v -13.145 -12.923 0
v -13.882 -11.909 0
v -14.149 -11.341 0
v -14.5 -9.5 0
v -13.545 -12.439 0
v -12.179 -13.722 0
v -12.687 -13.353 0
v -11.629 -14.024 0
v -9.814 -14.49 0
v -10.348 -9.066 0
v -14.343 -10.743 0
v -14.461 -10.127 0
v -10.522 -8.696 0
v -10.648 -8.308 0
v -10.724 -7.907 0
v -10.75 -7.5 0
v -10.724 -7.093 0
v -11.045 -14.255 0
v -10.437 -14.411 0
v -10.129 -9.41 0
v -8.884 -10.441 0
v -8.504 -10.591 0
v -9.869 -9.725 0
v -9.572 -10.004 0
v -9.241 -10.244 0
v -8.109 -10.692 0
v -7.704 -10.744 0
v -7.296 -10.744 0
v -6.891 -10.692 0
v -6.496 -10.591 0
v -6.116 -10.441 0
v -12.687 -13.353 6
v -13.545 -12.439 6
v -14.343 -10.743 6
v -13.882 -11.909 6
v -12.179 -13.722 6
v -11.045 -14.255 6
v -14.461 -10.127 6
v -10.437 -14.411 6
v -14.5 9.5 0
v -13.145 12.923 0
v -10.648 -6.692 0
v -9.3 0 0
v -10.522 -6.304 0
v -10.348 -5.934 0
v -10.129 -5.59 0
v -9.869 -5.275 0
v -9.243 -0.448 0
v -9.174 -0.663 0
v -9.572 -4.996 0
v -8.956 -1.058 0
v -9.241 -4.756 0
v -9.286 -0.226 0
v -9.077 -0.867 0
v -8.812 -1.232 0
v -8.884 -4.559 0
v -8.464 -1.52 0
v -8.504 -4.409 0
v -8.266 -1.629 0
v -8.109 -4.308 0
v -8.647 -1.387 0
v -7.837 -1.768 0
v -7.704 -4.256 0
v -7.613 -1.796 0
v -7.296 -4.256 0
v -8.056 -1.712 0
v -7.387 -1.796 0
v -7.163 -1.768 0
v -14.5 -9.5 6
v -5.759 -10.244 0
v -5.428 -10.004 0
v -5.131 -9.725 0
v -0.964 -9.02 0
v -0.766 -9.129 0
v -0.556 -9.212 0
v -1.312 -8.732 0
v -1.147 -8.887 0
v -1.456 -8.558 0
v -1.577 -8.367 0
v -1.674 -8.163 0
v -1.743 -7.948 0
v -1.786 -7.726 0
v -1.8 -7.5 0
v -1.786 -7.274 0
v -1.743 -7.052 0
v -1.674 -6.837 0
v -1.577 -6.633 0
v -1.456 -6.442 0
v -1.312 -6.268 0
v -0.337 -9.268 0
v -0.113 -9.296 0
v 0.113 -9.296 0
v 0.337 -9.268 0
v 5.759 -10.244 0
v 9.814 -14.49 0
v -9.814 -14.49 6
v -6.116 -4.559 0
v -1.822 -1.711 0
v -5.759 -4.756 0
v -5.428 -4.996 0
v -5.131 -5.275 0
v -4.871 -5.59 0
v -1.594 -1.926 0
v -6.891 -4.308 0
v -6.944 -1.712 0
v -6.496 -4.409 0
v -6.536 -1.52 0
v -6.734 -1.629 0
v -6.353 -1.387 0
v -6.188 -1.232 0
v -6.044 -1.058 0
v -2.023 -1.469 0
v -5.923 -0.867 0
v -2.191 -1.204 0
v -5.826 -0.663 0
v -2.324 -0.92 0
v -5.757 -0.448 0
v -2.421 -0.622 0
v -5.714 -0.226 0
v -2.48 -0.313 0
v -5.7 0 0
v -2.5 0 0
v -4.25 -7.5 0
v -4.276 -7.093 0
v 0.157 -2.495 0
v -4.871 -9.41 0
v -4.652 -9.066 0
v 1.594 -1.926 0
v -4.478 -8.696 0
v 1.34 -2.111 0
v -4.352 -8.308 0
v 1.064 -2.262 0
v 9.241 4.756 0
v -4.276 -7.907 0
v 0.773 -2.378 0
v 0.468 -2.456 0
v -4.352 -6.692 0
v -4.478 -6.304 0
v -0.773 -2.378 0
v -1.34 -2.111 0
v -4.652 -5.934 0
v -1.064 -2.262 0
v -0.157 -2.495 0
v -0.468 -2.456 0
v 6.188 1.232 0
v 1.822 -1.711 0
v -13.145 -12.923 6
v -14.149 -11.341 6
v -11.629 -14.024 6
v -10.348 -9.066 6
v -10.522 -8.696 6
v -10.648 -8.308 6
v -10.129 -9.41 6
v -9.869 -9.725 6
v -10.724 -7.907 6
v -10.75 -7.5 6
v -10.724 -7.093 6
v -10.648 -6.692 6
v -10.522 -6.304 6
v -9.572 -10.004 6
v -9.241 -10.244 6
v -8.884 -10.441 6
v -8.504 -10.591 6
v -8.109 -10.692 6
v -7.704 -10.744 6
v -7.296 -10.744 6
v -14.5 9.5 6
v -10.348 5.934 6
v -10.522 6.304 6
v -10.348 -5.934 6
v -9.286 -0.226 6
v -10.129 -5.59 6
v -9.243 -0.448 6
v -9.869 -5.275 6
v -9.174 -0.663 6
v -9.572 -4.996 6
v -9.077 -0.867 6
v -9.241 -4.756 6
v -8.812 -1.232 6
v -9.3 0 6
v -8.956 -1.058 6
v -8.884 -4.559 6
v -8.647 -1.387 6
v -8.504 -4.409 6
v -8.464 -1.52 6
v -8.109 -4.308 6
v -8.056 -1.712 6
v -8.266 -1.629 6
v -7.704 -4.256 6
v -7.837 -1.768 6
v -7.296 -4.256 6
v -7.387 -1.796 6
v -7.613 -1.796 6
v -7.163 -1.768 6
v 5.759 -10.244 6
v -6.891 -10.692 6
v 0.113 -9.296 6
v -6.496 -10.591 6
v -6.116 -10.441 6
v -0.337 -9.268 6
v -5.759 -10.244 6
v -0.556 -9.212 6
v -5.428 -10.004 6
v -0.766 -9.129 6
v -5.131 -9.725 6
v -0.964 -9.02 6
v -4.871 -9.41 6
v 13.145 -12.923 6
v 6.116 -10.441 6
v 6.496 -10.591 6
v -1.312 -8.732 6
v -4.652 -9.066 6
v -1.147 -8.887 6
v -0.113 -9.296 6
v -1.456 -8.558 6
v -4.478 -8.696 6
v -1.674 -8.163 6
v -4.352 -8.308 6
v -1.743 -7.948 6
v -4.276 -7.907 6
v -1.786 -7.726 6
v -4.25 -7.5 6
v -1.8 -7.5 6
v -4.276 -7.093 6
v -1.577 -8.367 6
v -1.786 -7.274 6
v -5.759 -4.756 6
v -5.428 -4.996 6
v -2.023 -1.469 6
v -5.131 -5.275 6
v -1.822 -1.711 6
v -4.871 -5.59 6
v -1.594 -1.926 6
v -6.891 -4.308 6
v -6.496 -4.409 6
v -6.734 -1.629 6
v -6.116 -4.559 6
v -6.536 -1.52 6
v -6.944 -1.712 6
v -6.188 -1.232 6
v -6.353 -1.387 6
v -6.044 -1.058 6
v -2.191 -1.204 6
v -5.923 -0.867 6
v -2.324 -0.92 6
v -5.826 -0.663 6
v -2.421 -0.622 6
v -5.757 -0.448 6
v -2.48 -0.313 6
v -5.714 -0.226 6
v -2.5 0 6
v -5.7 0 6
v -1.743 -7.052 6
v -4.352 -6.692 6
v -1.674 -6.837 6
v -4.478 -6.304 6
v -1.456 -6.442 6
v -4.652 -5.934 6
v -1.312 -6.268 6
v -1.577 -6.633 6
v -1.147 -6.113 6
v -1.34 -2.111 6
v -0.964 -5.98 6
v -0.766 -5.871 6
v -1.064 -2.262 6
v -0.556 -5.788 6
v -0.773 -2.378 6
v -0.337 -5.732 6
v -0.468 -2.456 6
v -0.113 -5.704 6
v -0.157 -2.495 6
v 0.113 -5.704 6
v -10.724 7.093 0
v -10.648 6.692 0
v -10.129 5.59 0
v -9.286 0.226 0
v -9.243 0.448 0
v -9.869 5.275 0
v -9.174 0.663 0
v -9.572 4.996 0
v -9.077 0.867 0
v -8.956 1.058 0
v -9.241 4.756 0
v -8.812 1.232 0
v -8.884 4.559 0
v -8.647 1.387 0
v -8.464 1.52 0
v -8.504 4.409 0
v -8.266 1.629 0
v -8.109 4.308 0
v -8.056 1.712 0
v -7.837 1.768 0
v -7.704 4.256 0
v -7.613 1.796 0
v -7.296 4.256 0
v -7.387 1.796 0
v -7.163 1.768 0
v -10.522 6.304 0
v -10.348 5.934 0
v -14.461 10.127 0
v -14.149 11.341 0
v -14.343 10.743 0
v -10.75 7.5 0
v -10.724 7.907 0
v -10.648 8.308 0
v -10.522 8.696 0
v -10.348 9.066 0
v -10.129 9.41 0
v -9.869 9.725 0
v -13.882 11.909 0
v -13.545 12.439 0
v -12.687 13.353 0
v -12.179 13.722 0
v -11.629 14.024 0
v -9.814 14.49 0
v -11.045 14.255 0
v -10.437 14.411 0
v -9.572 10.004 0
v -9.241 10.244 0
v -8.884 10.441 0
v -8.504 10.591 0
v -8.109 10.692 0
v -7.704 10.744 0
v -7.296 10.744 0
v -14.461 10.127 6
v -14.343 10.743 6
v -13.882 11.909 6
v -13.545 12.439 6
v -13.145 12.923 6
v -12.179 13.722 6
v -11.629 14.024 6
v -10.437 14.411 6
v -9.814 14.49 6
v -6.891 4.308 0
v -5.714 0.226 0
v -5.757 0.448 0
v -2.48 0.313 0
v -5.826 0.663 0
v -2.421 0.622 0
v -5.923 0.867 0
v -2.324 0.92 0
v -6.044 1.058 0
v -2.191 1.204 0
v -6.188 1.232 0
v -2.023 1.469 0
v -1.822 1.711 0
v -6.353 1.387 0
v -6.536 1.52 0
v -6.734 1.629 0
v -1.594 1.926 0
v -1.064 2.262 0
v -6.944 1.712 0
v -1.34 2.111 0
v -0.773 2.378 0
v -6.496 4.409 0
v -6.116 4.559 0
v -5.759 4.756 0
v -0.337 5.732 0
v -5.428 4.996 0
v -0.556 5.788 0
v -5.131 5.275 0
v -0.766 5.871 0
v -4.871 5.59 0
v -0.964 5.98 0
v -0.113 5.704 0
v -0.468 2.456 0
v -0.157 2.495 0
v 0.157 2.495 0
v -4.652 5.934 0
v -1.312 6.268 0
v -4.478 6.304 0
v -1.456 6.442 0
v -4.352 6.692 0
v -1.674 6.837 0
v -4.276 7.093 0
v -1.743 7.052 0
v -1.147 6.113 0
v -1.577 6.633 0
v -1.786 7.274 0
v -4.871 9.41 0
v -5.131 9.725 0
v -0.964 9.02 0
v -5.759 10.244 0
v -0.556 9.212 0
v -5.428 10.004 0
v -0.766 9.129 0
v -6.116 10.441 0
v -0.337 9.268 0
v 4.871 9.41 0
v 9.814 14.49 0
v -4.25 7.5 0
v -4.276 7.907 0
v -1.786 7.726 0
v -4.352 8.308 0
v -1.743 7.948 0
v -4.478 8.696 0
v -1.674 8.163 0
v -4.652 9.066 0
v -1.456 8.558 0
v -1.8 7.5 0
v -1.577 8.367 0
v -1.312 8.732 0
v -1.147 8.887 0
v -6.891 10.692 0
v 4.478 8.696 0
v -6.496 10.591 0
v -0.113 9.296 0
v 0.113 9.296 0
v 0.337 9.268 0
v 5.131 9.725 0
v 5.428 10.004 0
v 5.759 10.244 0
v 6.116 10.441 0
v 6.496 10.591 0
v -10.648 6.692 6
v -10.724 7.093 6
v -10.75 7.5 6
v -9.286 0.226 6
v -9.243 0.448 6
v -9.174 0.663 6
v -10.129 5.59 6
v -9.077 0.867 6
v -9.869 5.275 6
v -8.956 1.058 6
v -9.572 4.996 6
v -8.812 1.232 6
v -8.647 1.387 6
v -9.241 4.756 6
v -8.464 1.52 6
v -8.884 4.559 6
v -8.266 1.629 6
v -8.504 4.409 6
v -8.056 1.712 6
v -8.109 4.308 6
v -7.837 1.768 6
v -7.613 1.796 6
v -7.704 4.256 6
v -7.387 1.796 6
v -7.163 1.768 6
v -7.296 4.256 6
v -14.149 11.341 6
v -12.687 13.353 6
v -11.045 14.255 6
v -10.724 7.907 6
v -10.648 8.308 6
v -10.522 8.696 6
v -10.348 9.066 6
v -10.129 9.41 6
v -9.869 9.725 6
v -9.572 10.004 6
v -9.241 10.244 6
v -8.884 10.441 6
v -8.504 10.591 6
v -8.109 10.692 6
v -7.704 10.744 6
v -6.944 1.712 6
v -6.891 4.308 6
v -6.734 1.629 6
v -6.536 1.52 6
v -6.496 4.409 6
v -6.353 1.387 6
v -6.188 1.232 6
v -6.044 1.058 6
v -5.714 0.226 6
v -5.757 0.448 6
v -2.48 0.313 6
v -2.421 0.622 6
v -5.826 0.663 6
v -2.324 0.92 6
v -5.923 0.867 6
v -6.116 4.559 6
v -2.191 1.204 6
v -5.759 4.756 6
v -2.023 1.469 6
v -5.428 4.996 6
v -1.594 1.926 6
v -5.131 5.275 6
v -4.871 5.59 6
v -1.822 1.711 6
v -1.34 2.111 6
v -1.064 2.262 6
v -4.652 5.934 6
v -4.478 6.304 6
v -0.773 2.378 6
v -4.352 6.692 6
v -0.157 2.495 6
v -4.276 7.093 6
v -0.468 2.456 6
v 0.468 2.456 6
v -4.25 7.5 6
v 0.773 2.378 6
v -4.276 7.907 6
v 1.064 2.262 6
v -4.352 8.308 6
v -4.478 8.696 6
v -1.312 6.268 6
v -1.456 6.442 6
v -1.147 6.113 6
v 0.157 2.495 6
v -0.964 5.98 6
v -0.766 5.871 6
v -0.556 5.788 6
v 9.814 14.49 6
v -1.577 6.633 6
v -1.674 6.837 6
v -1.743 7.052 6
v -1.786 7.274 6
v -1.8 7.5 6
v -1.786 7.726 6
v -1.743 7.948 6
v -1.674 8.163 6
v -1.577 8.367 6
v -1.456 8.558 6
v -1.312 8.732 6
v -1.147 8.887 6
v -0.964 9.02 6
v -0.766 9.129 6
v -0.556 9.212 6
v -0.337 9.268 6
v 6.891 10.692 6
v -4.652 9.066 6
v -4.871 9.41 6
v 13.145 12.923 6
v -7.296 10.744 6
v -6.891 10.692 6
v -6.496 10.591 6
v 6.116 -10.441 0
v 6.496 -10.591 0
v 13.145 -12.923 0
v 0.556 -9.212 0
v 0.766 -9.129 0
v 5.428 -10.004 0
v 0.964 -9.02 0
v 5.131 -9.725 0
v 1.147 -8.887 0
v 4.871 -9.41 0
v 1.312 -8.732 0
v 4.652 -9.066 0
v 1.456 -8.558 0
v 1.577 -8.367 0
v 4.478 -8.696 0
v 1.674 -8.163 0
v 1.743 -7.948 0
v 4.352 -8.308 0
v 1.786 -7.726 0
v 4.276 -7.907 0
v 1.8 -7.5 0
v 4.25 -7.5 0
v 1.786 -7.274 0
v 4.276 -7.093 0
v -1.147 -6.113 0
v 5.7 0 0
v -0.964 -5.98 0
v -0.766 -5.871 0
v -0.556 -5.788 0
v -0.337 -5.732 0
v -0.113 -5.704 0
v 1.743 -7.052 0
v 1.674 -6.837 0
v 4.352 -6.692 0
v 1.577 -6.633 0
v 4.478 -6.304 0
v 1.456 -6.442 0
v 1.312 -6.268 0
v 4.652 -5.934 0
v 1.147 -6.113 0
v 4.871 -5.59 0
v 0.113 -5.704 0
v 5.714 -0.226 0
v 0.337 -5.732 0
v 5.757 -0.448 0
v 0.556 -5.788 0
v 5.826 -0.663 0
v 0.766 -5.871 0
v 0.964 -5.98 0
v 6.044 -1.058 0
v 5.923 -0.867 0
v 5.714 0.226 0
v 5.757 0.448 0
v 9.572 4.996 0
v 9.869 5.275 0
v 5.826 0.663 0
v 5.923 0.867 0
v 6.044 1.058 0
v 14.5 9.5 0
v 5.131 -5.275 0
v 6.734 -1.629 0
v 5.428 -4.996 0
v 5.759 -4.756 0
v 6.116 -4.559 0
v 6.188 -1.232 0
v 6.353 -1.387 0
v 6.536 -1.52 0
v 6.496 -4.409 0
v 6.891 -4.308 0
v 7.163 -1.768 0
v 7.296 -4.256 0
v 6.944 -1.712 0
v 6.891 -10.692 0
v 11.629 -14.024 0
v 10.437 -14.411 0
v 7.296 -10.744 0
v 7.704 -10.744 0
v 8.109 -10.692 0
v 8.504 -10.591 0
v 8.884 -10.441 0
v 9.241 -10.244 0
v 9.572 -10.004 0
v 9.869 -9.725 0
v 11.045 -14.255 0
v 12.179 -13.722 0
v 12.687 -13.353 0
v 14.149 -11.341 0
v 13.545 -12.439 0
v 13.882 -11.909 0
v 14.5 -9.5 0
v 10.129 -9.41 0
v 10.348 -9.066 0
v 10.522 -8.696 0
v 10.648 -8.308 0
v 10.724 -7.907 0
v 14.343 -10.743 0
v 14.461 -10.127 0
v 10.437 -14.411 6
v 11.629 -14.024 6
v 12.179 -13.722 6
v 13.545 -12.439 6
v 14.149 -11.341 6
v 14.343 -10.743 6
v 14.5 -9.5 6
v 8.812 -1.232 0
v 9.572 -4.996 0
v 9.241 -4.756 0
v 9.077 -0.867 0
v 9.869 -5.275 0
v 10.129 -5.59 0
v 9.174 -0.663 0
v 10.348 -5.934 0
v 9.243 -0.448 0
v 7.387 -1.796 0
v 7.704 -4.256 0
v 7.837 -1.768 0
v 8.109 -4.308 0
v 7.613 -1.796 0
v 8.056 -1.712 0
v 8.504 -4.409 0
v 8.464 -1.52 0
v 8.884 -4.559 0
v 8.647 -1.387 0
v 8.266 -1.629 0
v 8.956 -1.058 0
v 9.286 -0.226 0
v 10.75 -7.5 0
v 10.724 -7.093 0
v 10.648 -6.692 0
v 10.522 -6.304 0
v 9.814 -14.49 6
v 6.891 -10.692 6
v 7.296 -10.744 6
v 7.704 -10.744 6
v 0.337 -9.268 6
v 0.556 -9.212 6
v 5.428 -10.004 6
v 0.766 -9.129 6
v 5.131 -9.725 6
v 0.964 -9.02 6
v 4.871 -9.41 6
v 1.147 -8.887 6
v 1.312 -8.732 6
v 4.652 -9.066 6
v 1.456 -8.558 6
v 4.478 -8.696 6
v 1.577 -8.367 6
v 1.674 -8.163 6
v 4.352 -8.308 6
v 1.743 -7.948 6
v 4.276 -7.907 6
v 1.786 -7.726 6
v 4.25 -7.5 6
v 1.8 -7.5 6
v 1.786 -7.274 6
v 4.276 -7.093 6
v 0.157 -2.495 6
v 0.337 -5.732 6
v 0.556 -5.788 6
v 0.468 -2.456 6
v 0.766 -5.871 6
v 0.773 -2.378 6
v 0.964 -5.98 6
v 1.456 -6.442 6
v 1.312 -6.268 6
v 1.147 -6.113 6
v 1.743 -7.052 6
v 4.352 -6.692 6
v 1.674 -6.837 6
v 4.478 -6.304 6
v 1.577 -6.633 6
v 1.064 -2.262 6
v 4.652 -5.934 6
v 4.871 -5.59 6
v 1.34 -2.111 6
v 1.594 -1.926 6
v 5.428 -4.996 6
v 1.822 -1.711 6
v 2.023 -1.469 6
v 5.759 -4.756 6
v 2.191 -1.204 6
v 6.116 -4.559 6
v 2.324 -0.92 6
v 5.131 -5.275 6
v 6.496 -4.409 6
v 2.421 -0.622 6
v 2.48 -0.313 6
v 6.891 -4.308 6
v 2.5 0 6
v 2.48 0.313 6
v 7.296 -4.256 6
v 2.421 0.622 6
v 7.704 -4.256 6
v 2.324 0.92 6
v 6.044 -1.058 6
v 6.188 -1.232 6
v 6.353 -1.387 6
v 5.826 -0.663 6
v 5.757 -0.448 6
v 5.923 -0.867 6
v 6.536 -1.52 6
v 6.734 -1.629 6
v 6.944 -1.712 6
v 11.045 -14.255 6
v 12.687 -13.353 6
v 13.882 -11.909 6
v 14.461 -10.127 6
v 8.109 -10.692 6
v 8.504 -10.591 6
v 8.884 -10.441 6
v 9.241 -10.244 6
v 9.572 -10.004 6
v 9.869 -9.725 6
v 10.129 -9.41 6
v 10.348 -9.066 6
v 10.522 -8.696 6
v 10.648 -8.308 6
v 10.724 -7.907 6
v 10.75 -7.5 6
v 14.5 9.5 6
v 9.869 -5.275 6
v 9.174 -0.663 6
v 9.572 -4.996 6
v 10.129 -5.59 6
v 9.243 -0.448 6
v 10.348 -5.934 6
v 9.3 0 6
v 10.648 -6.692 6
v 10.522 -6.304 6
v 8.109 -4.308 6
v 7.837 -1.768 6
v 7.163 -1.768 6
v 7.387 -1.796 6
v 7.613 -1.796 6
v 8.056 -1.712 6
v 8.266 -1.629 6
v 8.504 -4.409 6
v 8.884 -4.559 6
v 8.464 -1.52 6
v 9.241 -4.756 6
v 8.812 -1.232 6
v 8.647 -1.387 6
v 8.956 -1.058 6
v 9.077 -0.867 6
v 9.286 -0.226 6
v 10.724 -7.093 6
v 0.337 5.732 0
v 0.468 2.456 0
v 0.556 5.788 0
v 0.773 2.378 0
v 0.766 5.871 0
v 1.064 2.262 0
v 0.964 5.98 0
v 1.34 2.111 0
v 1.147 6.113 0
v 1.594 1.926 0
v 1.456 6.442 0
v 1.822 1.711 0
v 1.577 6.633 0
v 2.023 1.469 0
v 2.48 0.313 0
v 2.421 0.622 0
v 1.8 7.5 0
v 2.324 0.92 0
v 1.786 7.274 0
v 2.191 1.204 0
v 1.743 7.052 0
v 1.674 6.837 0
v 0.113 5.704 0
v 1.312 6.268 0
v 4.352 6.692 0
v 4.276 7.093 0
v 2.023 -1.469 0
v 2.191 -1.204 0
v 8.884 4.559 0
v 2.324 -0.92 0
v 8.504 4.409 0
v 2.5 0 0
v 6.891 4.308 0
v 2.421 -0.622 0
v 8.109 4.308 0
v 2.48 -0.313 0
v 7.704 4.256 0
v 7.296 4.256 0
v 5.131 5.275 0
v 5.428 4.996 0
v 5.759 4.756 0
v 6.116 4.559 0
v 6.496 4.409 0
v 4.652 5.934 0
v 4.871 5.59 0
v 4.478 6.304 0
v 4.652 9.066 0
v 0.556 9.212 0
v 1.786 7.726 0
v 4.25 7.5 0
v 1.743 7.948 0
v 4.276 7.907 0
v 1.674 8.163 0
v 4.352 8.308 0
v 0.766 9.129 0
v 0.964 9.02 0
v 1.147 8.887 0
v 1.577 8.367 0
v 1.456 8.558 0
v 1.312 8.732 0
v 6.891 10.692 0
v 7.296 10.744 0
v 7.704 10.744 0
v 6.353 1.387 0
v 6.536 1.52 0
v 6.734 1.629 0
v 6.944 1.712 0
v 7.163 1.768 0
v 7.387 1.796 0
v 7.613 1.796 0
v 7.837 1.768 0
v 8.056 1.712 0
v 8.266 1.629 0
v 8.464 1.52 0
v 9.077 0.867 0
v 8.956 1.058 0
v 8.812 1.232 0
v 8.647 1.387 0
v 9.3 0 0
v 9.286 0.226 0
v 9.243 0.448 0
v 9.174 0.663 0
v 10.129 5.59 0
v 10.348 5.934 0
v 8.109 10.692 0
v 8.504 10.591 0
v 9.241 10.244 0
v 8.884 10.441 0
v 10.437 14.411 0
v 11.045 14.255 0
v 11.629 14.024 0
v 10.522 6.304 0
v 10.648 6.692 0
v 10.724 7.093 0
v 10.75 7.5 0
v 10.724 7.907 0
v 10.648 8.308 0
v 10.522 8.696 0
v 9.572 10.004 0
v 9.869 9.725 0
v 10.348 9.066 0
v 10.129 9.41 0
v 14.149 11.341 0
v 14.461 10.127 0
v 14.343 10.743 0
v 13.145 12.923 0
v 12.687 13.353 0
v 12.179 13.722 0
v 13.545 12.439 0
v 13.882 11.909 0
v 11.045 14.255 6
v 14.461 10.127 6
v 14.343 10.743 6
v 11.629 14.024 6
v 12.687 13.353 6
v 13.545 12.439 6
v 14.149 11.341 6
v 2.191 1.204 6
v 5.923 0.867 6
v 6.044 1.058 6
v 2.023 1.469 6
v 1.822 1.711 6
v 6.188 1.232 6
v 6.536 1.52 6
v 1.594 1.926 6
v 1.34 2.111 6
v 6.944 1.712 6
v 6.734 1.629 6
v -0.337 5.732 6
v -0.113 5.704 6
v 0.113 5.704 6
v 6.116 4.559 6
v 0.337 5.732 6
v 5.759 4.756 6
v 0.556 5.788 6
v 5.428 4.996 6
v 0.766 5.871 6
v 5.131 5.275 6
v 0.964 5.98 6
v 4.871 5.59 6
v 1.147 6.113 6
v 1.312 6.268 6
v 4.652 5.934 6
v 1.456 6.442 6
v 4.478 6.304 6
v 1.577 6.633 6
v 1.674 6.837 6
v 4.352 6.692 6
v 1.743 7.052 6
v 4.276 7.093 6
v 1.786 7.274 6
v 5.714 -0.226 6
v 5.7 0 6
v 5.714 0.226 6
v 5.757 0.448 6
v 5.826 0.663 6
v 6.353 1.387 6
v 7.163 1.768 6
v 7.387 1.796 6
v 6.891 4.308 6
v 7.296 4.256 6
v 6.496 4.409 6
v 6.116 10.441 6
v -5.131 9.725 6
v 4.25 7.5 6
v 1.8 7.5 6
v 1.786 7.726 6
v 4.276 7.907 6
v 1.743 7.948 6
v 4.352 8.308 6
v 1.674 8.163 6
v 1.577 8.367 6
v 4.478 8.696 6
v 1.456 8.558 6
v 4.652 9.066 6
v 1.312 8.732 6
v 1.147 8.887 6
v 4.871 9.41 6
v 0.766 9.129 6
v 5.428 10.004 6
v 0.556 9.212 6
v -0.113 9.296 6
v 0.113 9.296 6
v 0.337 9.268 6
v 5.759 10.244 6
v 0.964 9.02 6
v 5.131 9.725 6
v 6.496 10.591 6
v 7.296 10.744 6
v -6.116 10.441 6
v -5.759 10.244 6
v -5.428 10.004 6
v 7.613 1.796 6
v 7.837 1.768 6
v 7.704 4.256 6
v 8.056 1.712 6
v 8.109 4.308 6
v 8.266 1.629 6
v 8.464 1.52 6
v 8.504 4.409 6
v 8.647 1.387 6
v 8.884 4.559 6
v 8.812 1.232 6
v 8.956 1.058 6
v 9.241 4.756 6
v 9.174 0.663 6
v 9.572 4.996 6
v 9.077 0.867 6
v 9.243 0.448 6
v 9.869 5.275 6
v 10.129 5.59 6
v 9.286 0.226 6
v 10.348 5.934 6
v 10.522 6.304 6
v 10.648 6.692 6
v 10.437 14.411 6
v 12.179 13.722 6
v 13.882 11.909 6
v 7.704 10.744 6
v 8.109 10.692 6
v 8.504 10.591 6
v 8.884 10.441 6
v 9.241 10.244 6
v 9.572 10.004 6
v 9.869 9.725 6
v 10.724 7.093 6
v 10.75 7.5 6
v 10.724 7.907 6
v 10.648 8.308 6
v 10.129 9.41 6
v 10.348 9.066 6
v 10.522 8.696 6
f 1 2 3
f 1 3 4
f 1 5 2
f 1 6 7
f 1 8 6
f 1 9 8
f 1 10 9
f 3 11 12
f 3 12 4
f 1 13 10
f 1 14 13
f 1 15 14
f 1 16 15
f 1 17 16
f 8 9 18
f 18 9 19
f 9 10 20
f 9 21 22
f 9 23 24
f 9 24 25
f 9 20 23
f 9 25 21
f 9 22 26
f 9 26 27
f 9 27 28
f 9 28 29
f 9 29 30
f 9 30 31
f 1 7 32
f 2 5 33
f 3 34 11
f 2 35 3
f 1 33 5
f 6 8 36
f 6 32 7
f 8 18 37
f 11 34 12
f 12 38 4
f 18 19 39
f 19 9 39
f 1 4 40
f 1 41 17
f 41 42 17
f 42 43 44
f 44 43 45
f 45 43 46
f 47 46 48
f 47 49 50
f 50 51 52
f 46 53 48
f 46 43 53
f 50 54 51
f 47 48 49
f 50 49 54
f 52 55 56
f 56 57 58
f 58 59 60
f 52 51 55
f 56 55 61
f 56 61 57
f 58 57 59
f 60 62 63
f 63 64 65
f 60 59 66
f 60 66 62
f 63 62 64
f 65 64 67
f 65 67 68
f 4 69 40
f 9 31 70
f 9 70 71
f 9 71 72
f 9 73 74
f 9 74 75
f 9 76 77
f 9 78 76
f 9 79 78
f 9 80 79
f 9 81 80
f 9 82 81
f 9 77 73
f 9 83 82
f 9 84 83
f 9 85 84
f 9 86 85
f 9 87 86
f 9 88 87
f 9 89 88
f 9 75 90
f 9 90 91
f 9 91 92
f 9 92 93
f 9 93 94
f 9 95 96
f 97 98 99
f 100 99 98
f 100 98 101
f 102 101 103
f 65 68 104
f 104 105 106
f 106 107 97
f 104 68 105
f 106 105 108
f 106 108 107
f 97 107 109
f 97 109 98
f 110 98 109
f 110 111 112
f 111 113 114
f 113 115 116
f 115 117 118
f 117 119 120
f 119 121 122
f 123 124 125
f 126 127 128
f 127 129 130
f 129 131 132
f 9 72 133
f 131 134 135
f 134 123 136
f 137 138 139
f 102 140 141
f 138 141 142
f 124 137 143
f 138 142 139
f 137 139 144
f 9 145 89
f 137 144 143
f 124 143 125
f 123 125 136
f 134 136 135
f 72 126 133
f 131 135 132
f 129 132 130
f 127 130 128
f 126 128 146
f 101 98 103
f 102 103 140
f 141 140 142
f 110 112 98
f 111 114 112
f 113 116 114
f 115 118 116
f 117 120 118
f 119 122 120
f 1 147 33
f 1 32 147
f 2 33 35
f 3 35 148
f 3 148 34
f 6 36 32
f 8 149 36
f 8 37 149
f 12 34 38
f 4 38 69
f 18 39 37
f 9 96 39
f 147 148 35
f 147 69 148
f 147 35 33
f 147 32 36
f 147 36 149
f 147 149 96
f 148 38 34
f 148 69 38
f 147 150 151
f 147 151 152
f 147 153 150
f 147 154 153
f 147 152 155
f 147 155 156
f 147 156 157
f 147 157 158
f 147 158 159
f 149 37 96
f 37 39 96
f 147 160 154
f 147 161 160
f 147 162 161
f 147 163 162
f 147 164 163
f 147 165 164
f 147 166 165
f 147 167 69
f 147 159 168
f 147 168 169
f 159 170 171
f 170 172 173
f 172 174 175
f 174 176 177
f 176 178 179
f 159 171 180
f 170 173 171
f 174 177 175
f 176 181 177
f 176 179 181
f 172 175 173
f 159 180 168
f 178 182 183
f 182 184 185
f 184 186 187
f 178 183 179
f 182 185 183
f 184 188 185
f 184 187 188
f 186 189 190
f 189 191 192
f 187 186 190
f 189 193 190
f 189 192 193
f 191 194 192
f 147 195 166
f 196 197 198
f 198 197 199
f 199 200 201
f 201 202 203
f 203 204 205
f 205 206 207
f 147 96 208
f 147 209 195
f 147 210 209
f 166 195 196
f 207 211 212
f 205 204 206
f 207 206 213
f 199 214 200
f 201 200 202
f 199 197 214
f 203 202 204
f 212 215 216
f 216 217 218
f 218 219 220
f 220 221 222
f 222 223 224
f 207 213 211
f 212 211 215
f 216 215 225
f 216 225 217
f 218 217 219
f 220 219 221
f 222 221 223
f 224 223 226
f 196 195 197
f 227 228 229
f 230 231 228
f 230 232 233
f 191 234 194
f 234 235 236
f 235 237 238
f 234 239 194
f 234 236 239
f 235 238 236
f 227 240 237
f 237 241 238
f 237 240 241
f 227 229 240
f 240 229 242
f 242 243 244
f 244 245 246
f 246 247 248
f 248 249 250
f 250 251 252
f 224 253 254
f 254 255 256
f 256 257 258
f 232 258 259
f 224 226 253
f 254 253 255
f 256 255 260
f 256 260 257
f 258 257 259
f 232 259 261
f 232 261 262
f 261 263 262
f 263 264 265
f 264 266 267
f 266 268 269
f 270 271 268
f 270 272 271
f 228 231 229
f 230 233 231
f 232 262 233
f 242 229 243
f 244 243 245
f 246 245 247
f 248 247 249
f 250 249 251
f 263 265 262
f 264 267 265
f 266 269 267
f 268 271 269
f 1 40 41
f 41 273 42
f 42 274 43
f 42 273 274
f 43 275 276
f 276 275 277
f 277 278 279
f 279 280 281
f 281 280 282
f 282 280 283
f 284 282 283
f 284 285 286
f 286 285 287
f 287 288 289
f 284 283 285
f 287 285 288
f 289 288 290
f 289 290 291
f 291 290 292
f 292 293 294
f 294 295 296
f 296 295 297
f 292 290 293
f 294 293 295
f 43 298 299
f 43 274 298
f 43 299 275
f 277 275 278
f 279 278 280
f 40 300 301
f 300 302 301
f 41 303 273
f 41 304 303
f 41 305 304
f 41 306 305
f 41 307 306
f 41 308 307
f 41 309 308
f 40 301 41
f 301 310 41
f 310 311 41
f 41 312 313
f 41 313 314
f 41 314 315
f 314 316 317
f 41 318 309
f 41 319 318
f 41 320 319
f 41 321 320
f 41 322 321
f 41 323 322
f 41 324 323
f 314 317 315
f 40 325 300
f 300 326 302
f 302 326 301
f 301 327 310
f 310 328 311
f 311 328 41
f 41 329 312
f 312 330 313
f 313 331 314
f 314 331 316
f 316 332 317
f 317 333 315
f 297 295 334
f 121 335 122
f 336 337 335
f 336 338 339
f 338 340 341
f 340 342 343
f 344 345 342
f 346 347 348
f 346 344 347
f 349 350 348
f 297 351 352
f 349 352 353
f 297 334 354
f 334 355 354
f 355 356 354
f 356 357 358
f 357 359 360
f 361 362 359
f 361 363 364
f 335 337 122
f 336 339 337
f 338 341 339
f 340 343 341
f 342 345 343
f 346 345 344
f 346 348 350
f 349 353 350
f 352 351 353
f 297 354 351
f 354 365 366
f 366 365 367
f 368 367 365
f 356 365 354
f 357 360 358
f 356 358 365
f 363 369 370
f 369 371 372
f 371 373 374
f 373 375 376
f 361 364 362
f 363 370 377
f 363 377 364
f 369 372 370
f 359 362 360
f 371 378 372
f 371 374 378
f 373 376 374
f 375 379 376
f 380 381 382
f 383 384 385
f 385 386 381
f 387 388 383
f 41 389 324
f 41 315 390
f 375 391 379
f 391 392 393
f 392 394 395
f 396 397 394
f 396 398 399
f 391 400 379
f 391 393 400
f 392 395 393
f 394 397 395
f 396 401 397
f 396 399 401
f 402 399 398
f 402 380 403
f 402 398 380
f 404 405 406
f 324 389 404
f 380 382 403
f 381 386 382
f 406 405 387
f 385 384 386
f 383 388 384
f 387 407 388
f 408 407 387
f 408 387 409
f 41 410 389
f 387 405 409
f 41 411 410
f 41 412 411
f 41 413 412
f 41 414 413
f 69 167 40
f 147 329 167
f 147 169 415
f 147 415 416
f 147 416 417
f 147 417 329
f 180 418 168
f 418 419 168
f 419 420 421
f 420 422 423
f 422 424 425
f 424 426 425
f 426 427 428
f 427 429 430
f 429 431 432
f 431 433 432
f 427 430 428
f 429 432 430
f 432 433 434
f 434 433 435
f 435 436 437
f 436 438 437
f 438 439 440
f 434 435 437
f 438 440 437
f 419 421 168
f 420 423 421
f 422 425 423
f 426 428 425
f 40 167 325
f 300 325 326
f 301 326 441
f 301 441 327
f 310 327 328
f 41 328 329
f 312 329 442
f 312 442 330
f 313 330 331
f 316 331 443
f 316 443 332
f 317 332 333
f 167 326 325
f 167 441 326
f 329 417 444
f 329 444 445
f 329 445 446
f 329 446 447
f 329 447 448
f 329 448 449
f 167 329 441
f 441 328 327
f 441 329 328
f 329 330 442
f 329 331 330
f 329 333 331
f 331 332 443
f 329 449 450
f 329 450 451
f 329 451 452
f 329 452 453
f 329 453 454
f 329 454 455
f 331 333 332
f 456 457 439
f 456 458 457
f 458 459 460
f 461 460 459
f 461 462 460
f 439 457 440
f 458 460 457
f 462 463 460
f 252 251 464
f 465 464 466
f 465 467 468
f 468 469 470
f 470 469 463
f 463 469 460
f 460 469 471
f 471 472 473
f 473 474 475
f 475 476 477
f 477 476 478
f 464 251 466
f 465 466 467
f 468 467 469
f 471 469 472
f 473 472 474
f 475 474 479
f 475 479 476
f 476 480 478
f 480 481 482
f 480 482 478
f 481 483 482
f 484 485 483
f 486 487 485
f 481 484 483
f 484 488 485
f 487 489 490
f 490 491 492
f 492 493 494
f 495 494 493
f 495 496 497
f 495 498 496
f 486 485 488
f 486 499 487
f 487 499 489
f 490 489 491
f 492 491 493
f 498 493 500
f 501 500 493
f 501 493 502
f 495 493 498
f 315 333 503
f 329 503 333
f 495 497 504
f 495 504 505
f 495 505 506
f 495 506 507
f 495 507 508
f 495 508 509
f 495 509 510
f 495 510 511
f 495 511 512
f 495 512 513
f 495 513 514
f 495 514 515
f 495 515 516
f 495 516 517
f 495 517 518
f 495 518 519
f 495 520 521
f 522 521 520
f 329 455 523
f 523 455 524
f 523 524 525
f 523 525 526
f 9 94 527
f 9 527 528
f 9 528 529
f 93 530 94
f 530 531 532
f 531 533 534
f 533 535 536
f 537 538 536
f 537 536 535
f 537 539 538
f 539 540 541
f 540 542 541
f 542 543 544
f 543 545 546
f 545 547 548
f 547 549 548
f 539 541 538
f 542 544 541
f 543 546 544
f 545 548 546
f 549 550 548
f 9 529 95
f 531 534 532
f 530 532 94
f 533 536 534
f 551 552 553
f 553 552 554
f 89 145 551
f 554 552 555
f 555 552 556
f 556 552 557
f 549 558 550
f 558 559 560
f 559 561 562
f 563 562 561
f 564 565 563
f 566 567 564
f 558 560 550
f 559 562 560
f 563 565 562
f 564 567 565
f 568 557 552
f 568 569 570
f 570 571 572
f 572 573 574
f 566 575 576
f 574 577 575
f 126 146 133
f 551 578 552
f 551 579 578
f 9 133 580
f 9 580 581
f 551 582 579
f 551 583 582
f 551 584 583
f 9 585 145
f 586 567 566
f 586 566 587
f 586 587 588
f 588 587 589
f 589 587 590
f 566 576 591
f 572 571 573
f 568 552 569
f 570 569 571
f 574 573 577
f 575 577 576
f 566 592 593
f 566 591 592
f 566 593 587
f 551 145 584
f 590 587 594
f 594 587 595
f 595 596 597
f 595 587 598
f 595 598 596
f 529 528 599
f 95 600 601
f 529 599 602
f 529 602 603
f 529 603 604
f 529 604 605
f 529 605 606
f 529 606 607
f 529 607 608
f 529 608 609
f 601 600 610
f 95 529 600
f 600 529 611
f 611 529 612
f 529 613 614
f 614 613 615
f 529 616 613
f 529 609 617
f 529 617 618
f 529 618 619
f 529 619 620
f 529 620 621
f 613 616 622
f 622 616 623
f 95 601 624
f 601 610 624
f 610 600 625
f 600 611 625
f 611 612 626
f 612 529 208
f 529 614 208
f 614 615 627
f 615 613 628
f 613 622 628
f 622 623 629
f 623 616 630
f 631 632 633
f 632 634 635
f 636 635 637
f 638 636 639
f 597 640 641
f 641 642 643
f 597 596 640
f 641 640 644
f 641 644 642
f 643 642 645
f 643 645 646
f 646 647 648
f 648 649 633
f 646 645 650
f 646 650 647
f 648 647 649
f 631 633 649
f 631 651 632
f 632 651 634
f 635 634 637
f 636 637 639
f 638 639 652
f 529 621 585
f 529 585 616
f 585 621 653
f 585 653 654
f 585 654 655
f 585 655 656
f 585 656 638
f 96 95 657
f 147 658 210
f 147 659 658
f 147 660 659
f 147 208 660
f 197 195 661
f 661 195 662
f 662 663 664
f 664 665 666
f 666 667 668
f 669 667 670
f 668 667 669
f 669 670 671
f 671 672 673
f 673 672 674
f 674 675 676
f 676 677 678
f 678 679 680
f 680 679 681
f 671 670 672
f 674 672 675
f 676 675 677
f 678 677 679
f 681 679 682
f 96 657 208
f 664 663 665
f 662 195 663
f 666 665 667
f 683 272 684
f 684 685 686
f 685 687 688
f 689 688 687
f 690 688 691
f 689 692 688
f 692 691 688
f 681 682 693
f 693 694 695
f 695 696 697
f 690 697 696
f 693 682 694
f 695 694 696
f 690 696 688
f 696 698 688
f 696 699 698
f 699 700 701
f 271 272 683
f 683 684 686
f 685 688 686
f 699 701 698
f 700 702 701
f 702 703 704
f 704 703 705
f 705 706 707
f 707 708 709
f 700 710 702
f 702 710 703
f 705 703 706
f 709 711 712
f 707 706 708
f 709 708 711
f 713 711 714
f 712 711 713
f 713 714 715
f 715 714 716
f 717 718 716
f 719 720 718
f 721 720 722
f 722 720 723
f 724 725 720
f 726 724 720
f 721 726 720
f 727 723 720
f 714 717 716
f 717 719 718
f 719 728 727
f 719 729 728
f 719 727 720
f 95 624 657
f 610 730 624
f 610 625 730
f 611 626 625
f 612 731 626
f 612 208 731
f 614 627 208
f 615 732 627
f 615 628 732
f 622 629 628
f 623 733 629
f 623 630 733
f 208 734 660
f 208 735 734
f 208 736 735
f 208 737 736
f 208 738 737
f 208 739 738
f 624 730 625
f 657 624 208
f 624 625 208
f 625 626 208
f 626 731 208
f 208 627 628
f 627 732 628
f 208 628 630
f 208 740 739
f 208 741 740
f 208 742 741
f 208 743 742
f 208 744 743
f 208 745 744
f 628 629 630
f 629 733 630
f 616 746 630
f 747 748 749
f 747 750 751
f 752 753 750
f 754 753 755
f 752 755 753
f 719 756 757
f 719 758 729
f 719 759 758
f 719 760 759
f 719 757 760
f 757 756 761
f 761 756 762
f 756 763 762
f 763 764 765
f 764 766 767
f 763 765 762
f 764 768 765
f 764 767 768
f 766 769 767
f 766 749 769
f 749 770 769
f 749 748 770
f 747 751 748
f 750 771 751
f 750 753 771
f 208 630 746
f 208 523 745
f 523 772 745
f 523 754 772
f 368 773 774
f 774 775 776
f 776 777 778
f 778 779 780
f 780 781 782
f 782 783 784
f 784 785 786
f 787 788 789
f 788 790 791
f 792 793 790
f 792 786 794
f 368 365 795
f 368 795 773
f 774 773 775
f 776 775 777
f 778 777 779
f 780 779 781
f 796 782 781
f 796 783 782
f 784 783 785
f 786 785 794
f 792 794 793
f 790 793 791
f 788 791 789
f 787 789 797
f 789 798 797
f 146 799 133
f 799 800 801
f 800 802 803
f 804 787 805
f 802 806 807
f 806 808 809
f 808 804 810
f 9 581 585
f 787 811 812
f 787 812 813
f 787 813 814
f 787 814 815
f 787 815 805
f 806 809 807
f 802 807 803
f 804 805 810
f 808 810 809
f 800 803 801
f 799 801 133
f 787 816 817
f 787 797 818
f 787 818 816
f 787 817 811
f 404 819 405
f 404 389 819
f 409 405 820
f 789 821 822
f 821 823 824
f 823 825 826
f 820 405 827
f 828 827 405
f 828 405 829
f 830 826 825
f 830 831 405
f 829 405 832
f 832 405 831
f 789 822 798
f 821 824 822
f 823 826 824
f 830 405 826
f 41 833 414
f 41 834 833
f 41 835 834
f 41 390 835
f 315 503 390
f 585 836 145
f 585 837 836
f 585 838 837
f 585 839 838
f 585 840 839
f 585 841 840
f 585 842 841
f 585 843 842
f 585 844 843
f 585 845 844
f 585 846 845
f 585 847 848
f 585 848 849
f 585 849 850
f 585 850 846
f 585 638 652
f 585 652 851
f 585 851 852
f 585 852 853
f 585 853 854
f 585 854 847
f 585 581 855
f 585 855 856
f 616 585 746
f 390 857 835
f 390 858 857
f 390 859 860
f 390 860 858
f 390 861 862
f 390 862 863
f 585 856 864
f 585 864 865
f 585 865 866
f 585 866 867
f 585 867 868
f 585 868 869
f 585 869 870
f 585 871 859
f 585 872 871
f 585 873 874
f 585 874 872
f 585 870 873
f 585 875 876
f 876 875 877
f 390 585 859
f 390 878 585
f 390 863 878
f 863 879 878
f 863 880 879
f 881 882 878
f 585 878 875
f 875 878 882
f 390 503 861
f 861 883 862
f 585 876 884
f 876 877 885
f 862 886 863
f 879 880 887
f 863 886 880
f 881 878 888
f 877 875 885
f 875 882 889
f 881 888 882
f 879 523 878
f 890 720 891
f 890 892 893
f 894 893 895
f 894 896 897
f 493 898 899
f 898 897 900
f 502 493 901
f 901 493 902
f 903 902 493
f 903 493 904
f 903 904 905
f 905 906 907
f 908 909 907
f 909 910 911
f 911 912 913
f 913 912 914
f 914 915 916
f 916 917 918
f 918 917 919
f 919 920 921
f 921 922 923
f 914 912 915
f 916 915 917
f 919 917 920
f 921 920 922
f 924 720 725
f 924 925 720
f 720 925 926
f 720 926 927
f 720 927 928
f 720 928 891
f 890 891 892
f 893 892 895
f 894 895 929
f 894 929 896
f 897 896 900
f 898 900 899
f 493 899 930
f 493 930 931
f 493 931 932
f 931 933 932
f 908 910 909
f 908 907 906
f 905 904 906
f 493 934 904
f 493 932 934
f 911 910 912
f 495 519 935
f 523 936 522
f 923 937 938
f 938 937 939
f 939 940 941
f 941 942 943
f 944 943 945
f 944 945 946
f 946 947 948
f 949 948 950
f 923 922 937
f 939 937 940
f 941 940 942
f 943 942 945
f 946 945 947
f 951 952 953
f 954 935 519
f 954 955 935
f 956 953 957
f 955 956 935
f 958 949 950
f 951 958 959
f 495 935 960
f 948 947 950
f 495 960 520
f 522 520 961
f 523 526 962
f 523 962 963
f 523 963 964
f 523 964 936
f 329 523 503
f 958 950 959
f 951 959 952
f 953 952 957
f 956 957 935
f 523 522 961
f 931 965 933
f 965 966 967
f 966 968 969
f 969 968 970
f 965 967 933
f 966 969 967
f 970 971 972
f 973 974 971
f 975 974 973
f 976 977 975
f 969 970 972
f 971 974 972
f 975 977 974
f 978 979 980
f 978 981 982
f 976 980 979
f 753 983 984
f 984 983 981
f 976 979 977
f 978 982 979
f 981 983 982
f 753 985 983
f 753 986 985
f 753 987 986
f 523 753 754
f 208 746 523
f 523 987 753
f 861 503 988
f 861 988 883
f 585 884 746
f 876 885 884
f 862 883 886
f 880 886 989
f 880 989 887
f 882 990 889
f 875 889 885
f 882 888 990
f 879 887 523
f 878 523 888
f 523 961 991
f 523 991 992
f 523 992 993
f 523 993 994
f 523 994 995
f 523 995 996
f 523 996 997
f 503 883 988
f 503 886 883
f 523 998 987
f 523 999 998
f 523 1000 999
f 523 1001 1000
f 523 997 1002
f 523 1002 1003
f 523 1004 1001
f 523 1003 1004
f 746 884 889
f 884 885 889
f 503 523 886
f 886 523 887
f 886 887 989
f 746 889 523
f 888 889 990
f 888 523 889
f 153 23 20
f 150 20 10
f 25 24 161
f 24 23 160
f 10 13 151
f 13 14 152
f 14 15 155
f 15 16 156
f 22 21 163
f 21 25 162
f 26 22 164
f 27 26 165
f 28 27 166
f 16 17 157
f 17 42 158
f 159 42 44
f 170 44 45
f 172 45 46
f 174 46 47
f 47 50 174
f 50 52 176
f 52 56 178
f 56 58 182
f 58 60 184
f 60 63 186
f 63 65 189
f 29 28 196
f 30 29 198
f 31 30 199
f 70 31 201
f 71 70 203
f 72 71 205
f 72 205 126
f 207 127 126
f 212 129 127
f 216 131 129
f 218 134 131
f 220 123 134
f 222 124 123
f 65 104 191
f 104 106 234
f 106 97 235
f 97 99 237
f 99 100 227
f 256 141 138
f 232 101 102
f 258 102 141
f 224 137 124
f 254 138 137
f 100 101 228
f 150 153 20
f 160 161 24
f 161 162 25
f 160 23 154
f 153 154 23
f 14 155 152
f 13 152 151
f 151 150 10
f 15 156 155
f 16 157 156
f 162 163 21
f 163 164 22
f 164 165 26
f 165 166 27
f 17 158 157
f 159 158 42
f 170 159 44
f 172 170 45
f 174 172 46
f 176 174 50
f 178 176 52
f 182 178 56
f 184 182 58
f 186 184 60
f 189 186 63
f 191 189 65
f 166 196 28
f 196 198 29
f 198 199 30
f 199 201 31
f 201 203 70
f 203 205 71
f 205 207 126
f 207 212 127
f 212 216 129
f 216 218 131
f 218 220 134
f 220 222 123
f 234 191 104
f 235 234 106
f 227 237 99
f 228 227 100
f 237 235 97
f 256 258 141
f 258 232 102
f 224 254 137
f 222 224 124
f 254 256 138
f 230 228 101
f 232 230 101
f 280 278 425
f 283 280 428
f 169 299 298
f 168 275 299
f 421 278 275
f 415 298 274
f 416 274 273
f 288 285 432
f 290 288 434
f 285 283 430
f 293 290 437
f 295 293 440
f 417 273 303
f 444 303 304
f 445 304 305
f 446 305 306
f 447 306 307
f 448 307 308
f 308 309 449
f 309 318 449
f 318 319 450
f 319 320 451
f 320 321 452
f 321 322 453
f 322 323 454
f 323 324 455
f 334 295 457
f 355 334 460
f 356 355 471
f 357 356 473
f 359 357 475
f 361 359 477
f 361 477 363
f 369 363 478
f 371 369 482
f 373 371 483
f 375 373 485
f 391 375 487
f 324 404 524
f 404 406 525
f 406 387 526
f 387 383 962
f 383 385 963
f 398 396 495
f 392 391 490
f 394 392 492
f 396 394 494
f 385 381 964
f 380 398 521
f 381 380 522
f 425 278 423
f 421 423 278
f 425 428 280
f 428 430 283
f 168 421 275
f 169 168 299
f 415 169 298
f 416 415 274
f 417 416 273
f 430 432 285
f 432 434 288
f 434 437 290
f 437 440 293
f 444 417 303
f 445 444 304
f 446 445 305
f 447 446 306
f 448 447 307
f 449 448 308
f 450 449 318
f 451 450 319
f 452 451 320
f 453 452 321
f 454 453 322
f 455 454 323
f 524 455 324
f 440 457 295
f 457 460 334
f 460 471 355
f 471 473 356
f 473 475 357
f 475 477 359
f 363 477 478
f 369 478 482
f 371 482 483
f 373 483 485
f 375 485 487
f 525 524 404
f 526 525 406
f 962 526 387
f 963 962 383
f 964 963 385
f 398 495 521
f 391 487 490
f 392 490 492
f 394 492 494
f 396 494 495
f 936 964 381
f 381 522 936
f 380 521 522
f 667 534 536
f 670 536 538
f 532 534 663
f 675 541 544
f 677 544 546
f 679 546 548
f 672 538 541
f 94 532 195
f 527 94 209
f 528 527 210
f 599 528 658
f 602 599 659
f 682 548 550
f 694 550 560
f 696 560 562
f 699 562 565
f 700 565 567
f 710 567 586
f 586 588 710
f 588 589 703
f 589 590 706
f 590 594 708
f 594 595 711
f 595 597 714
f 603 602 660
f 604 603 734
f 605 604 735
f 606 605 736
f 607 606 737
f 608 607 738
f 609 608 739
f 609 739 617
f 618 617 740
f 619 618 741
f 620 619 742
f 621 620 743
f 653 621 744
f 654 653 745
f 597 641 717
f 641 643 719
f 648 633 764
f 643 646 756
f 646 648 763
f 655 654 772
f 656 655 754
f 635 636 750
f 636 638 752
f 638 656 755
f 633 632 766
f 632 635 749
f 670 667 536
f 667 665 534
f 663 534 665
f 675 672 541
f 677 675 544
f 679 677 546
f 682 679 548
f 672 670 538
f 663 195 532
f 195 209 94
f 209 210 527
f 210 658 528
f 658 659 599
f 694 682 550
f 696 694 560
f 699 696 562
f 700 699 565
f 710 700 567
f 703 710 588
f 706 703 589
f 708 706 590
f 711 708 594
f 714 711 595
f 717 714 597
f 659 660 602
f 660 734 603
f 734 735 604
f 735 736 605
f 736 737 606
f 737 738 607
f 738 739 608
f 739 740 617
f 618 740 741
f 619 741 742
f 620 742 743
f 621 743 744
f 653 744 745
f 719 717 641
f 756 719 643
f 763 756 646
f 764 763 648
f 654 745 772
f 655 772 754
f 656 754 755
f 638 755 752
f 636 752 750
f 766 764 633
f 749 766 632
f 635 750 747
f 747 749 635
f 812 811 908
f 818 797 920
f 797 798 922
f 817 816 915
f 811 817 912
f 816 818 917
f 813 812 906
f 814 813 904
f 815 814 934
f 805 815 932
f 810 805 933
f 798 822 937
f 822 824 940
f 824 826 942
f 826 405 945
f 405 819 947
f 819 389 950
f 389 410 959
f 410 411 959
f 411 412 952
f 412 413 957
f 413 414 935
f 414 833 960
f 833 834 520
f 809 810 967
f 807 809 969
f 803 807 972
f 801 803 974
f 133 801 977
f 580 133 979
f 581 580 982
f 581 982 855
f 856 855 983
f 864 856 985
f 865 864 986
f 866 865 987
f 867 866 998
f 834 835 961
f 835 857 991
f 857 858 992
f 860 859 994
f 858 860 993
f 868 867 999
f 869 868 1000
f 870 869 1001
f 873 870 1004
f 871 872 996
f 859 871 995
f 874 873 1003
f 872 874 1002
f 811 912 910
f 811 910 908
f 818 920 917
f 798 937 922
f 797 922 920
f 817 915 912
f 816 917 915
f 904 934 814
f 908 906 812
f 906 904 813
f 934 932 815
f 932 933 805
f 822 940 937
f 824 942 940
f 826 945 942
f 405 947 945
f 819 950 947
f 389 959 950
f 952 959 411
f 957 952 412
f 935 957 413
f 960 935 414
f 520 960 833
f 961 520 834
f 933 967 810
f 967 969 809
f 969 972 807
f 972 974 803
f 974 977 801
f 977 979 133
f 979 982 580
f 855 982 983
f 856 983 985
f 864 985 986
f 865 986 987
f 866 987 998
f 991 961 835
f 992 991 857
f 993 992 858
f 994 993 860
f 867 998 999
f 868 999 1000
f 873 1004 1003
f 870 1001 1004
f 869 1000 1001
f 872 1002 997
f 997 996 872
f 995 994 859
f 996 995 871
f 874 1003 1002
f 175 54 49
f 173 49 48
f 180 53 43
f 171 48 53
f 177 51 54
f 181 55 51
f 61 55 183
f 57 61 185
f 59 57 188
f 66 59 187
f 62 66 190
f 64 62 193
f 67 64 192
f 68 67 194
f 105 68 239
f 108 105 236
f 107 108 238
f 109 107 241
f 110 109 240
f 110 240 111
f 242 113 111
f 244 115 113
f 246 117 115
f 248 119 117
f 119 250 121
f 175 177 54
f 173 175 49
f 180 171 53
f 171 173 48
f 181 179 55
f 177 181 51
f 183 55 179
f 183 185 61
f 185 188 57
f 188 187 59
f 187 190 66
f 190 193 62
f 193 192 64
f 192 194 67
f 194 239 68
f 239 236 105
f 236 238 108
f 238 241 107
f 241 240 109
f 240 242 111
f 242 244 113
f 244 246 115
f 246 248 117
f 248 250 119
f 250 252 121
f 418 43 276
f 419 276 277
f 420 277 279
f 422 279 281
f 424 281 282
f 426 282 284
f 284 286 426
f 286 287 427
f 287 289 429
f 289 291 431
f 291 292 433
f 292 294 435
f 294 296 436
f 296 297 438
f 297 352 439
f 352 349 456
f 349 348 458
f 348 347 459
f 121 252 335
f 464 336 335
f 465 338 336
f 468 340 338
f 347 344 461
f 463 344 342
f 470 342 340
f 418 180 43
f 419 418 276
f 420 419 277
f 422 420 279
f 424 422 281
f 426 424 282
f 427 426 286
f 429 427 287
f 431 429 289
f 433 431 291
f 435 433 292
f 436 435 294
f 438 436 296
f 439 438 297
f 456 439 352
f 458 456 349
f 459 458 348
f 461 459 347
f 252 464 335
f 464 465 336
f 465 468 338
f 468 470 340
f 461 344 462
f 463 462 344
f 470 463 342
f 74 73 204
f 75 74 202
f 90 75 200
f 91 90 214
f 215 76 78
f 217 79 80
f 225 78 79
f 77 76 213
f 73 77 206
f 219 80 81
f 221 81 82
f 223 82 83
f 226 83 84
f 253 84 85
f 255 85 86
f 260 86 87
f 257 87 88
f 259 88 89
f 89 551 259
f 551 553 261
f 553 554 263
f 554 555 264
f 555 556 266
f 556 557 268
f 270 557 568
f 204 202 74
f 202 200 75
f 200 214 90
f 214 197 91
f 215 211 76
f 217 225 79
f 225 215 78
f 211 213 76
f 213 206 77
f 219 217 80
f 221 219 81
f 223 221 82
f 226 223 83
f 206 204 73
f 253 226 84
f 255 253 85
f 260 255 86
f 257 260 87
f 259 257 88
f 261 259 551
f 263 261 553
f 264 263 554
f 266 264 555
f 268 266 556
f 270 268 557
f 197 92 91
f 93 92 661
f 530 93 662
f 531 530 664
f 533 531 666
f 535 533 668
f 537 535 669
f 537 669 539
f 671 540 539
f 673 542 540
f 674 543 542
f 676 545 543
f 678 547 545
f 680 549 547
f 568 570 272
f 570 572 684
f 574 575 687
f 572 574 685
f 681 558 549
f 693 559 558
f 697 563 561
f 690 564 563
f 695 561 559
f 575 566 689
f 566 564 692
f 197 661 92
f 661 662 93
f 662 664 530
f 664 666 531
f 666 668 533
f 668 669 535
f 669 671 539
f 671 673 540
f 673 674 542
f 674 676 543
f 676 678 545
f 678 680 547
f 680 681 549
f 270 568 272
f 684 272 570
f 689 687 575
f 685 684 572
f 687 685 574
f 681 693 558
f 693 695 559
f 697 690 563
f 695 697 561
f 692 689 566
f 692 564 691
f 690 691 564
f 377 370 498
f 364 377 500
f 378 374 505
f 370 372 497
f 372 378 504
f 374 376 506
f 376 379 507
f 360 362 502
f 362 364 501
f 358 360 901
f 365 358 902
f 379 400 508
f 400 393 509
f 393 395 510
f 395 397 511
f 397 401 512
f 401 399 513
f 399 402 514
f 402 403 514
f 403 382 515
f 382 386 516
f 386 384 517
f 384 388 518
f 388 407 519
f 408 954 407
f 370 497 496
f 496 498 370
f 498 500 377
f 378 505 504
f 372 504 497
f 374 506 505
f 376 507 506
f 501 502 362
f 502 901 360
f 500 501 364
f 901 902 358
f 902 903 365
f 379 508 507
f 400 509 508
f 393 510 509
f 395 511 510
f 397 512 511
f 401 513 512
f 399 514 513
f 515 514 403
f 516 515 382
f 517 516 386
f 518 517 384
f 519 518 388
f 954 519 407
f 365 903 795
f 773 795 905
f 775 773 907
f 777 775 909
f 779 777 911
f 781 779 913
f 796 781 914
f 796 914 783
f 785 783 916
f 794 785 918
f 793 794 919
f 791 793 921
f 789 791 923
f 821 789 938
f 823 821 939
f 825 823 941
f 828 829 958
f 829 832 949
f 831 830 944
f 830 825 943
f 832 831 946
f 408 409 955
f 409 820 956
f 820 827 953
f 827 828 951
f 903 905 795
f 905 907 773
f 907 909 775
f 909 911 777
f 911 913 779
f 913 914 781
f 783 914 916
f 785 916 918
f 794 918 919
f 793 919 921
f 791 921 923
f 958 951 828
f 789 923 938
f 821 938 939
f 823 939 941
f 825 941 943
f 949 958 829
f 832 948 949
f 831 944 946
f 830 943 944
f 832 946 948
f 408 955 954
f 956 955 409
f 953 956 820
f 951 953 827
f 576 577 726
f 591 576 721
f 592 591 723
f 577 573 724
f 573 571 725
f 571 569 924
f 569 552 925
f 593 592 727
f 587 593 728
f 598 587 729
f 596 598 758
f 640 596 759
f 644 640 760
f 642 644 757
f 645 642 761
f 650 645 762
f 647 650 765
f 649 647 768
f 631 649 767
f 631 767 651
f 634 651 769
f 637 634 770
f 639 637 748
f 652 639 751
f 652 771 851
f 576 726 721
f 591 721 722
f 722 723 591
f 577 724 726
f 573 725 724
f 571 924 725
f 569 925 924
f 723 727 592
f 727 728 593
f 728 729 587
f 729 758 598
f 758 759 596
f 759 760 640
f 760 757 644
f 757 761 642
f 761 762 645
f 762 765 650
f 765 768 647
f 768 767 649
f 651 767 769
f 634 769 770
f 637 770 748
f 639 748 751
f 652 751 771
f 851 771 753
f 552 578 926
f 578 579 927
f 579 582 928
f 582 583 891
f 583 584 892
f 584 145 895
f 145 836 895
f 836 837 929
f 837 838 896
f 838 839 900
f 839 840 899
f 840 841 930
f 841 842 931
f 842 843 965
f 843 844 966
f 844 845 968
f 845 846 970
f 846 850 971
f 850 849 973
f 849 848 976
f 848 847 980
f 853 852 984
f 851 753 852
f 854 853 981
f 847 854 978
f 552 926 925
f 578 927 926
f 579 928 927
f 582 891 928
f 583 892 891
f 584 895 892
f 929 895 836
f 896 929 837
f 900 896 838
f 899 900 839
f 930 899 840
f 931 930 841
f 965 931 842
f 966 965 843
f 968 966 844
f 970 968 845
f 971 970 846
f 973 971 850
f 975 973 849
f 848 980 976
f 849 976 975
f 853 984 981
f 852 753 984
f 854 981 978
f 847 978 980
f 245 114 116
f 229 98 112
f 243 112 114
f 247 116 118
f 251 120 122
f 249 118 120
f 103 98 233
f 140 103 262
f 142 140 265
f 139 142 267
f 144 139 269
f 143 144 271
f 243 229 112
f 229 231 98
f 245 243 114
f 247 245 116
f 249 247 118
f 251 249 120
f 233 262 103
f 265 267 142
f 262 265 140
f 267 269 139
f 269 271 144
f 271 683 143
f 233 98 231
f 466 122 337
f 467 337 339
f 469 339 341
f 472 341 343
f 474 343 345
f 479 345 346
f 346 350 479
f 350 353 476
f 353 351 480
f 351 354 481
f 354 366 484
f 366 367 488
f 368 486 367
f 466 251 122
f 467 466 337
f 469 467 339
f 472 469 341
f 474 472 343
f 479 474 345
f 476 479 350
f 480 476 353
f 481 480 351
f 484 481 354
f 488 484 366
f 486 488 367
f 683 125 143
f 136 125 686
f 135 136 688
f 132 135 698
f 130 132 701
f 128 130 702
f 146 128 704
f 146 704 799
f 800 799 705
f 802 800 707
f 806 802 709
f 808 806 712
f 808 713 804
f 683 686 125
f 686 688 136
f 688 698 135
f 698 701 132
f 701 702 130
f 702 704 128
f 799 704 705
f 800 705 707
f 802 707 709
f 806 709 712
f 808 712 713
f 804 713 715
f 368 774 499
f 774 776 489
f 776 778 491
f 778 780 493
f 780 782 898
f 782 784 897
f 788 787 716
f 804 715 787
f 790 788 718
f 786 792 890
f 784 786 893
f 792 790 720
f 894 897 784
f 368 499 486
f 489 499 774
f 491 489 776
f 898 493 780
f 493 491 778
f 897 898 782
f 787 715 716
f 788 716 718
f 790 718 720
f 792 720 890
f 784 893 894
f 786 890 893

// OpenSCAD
$fn = 50;

difference() {
	union() {
		hull() {
			translate(v = [-9.5, 9.5, 0]) {
				cylinder(h = 6, r = 5);
			}
			translate(v = [9.5, 9.5, 0]) {
				cylinder(h = 6, r = 5);
			}
			translate(v = [-9.5, -9.5, 0]) {
				cylinder(h = 6, r = 5);
			}
			translate(v = [9.5, -9.5, 0]) {
				cylinder(h = 6, r = 5);
			}
		}
	}
	union() {
		translate(v = [-7.5, -7.5, 0]) {
			cylinder(h = 6, r = 3.25);
		}
		translate(v = [-7.5, 7.5, 0]) {
			cylinder(h = 6, r = 3.25);
		}
		translate(v = [7.5, -7.5, 0]) {
			cylinder(h = 6, r = 3.25);
		}
		translate(v = [7.5, 7.5, 0]) {
			cylinder(h = 6, r = 3.25);
		}
		translate(v = [-7.5, 0.0, 0]) {
			cylinder(h = 6, r = 1.8);
		}
		translate(v = [0.0, -7.5, 0]) {
			cylinder(h = 6, r = 1.8);
		}
		translate(v = [0.0, 7.5, 0]) {
			cylinder(h = 6, r = 1.8);
		}
		translate(v = [7.5, 0.0, 0]) {
			cylinder(h = 6, r = 1.8);
		}
		cylinder(h = 6, r = 2.5);
	}
}
